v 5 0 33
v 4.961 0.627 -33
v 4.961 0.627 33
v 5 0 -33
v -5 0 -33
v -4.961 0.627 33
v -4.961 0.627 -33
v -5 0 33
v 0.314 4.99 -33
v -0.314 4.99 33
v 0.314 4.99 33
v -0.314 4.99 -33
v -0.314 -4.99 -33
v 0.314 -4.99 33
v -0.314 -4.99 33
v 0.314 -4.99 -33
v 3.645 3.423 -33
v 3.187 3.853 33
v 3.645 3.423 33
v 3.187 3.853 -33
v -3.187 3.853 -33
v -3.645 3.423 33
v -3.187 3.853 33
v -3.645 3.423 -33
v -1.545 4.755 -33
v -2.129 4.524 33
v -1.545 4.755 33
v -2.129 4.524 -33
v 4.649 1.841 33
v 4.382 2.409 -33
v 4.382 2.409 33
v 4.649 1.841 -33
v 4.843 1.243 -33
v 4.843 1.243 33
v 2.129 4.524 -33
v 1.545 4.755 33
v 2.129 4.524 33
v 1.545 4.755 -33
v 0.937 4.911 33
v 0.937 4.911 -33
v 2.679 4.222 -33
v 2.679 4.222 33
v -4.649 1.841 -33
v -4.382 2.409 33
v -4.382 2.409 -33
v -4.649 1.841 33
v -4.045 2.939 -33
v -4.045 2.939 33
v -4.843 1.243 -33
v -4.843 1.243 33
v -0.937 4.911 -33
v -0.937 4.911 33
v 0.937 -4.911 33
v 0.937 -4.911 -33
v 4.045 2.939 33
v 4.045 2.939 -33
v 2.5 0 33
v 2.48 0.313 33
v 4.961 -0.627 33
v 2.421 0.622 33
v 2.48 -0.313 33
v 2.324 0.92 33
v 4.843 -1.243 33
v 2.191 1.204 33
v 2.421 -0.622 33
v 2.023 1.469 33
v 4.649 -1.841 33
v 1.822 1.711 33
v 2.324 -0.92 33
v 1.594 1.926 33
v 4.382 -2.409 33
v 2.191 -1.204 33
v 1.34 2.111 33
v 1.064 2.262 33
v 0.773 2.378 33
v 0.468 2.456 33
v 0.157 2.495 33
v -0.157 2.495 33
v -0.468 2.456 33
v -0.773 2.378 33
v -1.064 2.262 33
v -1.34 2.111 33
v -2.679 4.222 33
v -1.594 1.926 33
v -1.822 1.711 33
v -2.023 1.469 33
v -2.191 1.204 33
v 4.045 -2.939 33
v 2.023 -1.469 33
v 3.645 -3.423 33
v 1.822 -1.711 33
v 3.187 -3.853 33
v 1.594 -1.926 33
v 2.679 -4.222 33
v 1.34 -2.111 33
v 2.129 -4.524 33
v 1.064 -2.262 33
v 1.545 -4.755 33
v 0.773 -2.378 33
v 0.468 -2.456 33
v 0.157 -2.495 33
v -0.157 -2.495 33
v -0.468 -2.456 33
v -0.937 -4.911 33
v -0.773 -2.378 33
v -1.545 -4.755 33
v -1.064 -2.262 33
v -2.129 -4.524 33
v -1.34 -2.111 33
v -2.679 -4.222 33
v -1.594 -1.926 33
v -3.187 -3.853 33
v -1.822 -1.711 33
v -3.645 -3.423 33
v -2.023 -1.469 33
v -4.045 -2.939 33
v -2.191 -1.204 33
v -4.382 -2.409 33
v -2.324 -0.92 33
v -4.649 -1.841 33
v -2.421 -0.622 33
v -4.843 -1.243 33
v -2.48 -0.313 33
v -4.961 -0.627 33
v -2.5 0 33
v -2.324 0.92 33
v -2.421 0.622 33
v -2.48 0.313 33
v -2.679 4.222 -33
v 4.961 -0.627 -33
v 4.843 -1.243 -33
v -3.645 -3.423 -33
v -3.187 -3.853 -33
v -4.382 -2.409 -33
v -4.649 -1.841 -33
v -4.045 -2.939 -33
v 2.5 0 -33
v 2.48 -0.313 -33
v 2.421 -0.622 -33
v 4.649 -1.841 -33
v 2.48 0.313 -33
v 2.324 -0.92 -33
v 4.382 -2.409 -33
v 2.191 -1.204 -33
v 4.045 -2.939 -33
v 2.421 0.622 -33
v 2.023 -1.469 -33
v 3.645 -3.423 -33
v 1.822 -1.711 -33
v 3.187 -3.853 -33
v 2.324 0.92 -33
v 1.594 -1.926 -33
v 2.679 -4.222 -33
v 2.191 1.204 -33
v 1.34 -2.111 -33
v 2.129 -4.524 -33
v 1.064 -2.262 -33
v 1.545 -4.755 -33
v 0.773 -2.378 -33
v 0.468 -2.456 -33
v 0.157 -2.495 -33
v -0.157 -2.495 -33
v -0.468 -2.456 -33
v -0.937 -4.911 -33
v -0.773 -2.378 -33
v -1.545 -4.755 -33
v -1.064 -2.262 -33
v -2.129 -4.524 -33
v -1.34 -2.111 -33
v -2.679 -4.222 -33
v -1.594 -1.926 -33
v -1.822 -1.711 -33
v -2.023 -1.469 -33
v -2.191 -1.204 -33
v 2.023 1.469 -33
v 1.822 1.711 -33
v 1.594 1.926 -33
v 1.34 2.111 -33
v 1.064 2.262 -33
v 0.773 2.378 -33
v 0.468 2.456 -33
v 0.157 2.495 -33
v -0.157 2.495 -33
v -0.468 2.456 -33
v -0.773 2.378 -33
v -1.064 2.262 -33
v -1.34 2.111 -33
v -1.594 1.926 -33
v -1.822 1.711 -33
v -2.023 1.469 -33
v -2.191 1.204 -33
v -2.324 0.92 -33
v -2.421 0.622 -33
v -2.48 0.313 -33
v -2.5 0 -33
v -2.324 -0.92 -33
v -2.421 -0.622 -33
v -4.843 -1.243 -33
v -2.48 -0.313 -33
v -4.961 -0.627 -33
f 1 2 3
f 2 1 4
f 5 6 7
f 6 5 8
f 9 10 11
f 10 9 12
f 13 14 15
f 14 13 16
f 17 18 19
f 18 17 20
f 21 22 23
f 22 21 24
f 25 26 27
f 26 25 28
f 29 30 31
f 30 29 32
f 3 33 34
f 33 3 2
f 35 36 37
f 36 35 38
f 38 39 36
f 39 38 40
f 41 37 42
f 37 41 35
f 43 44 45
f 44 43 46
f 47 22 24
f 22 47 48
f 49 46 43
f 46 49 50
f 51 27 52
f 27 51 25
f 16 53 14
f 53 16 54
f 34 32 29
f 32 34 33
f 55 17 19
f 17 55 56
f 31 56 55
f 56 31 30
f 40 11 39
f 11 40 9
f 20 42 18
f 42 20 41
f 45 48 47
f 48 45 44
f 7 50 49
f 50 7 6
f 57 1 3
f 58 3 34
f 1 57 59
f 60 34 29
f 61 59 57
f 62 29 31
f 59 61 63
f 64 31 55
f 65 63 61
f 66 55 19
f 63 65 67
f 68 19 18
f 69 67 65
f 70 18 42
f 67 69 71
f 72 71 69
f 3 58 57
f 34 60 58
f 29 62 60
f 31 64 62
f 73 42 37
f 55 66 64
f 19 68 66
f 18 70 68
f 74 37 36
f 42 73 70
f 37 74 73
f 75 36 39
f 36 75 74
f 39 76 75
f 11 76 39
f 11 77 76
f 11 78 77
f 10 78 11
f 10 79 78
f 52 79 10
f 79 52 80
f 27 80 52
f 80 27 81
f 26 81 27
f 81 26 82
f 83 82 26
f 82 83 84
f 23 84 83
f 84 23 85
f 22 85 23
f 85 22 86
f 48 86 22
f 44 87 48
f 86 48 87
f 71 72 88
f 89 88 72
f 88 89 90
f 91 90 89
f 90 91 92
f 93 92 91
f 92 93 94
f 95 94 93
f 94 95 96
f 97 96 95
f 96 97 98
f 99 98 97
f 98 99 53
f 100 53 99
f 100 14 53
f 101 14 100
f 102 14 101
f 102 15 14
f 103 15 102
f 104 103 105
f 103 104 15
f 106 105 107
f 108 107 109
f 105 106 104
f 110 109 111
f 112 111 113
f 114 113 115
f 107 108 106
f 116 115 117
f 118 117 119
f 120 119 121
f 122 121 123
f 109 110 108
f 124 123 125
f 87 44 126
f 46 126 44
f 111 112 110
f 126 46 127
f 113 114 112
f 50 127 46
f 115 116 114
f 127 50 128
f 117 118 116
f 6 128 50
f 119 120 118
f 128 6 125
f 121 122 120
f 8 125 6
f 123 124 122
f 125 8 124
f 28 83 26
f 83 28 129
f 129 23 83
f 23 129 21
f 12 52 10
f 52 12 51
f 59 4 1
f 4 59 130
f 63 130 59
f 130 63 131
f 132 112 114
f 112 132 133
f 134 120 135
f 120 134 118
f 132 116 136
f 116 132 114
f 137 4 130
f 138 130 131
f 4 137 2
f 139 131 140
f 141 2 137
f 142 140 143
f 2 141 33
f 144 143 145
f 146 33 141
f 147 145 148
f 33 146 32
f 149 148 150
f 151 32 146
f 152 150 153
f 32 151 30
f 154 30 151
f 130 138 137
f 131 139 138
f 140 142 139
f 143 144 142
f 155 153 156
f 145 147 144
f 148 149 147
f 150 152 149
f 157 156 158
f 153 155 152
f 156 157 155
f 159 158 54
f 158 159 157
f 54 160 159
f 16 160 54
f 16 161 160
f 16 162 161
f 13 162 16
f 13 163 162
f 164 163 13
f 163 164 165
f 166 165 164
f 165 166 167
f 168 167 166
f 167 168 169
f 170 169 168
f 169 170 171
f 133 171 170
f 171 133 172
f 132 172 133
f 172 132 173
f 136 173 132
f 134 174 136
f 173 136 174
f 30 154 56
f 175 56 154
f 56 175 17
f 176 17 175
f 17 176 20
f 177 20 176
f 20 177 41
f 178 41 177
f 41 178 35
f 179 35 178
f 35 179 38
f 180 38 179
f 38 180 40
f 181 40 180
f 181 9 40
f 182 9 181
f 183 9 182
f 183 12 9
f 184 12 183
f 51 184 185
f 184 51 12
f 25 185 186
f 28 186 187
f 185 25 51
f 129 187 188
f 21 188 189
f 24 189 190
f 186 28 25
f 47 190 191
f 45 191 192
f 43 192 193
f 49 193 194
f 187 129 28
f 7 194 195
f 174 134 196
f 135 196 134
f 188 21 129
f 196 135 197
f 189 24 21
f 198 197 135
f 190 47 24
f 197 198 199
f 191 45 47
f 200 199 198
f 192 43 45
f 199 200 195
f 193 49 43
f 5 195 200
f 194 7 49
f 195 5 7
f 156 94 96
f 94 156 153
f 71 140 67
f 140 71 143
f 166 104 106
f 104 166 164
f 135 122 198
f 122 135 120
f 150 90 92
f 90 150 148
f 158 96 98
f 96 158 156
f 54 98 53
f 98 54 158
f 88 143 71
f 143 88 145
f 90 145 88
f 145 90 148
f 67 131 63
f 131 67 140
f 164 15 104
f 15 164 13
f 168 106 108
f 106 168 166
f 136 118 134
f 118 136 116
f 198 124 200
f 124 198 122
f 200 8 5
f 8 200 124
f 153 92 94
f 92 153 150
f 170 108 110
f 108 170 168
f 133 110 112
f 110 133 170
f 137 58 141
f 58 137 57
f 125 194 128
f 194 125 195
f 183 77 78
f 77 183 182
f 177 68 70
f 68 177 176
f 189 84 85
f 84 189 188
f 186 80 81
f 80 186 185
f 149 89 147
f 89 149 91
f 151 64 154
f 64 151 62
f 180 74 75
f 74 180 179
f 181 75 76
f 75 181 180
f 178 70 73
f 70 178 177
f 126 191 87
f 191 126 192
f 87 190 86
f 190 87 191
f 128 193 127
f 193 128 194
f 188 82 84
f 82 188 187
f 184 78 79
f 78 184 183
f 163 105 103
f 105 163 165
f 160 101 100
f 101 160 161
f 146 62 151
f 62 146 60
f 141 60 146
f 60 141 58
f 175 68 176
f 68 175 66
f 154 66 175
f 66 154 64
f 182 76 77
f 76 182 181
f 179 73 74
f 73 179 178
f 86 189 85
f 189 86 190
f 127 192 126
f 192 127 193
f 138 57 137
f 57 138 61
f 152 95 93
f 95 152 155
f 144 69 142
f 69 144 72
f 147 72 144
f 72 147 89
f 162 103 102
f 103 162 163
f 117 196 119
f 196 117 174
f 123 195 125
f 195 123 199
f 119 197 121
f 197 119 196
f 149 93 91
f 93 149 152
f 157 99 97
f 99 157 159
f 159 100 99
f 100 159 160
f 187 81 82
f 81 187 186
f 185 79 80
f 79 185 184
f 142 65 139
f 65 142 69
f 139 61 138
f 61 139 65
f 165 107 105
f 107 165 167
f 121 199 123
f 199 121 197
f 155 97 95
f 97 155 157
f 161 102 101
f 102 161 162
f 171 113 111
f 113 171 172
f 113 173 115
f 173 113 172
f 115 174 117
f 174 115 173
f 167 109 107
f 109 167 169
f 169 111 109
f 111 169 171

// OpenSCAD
$fn = 50;


difference() {
	union() {
		translate(v = [0, 0, -33.0000000000]) {
			cylinder(h = 66, r = 5.0000000000);
		}
	}
	union() {
		translate(v = [0, 0, -100.0000000000]) {
			cylinder(h = 200, r = 2.5000000000);
		}
	}
}
